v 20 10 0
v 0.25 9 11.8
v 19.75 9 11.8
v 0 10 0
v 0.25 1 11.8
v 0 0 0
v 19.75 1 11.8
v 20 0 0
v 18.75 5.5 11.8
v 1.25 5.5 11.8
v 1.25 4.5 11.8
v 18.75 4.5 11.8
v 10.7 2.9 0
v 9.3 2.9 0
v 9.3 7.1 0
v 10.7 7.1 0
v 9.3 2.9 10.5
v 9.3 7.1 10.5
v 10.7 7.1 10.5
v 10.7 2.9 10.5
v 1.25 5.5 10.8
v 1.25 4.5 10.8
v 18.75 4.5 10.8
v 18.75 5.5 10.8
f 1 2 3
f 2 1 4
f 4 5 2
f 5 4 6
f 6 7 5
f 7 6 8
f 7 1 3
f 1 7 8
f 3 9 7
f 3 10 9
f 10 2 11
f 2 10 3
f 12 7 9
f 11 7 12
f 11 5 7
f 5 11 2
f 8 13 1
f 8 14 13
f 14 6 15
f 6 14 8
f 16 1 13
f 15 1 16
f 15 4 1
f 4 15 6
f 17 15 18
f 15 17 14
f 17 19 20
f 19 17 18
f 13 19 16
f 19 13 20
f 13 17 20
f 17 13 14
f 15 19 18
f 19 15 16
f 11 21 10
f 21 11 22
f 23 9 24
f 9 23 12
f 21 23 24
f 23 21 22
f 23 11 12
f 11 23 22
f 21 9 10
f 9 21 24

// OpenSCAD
// This doesn't work with customizer :(
// The indicator line
//linestyle = "slot"; // ["slot", "raised", "none"]

// base dimensions
width=10;
length=20;

// top dimensions
topwidth=8;
toplength=19.5;

// height
height=11.8;

// slot in bottom
slotwidth=4.2;
slotlength=1.4;
slotdepth=10.5;

/* [hidden] */
point0=[0,0,0];
point1=[0,width,0];
point2=[length,width,0];
point3=[length,0,0];
point4=[(length-toplength)/2,(width-topwidth)/2,height];
point5=[(length-toplength)/2,width-(width-topwidth)/2,height];
point6=[length - (length-toplength)/2,width-(width-topwidth)/2,height];
point7=[length - (length-toplength)/2,(width-topwidth)/2,height];


difference() {
polyhedron(
points=[ point0, point1, point2, point3, point4, point5, point6, point7],
faces= [ [0,2,1],[0,3,2], // cw bottom
		   [0,1,5],[0,5,4], // cw short 1
		   [0,4,7],[0,7,3], // cw wide 1
             [2,3,7],[2,7,6], // cw short 2
             [1,2,5],[2,6,5], // cw wide 2
             [4,5,6],[4,6,7] ] // cw top
);

// carve out line for fader slot.
translate([length/2-slotlength/2, width/2-slotwidth/2, 0])
cube([slotlength,slotwidth,slotdepth]);

// line in top, if a slot.
//	if (linestyle == "slot") {
		translate([(length-toplength)/2 + 1,(topwidth/2 + (width - topwidth)/2)-.5 ,height-1])
		cube([toplength-2,1,2]);
//	}
}


// line in top, if a raised line
//	if (linestyle == "raised") {
//		translate([(length-toplength)/2 + 1,(topwidth/2 + (width - topwidth)/2)-.5 ,height-1])
//		cube([toplength-2,1,2]);
//	}
